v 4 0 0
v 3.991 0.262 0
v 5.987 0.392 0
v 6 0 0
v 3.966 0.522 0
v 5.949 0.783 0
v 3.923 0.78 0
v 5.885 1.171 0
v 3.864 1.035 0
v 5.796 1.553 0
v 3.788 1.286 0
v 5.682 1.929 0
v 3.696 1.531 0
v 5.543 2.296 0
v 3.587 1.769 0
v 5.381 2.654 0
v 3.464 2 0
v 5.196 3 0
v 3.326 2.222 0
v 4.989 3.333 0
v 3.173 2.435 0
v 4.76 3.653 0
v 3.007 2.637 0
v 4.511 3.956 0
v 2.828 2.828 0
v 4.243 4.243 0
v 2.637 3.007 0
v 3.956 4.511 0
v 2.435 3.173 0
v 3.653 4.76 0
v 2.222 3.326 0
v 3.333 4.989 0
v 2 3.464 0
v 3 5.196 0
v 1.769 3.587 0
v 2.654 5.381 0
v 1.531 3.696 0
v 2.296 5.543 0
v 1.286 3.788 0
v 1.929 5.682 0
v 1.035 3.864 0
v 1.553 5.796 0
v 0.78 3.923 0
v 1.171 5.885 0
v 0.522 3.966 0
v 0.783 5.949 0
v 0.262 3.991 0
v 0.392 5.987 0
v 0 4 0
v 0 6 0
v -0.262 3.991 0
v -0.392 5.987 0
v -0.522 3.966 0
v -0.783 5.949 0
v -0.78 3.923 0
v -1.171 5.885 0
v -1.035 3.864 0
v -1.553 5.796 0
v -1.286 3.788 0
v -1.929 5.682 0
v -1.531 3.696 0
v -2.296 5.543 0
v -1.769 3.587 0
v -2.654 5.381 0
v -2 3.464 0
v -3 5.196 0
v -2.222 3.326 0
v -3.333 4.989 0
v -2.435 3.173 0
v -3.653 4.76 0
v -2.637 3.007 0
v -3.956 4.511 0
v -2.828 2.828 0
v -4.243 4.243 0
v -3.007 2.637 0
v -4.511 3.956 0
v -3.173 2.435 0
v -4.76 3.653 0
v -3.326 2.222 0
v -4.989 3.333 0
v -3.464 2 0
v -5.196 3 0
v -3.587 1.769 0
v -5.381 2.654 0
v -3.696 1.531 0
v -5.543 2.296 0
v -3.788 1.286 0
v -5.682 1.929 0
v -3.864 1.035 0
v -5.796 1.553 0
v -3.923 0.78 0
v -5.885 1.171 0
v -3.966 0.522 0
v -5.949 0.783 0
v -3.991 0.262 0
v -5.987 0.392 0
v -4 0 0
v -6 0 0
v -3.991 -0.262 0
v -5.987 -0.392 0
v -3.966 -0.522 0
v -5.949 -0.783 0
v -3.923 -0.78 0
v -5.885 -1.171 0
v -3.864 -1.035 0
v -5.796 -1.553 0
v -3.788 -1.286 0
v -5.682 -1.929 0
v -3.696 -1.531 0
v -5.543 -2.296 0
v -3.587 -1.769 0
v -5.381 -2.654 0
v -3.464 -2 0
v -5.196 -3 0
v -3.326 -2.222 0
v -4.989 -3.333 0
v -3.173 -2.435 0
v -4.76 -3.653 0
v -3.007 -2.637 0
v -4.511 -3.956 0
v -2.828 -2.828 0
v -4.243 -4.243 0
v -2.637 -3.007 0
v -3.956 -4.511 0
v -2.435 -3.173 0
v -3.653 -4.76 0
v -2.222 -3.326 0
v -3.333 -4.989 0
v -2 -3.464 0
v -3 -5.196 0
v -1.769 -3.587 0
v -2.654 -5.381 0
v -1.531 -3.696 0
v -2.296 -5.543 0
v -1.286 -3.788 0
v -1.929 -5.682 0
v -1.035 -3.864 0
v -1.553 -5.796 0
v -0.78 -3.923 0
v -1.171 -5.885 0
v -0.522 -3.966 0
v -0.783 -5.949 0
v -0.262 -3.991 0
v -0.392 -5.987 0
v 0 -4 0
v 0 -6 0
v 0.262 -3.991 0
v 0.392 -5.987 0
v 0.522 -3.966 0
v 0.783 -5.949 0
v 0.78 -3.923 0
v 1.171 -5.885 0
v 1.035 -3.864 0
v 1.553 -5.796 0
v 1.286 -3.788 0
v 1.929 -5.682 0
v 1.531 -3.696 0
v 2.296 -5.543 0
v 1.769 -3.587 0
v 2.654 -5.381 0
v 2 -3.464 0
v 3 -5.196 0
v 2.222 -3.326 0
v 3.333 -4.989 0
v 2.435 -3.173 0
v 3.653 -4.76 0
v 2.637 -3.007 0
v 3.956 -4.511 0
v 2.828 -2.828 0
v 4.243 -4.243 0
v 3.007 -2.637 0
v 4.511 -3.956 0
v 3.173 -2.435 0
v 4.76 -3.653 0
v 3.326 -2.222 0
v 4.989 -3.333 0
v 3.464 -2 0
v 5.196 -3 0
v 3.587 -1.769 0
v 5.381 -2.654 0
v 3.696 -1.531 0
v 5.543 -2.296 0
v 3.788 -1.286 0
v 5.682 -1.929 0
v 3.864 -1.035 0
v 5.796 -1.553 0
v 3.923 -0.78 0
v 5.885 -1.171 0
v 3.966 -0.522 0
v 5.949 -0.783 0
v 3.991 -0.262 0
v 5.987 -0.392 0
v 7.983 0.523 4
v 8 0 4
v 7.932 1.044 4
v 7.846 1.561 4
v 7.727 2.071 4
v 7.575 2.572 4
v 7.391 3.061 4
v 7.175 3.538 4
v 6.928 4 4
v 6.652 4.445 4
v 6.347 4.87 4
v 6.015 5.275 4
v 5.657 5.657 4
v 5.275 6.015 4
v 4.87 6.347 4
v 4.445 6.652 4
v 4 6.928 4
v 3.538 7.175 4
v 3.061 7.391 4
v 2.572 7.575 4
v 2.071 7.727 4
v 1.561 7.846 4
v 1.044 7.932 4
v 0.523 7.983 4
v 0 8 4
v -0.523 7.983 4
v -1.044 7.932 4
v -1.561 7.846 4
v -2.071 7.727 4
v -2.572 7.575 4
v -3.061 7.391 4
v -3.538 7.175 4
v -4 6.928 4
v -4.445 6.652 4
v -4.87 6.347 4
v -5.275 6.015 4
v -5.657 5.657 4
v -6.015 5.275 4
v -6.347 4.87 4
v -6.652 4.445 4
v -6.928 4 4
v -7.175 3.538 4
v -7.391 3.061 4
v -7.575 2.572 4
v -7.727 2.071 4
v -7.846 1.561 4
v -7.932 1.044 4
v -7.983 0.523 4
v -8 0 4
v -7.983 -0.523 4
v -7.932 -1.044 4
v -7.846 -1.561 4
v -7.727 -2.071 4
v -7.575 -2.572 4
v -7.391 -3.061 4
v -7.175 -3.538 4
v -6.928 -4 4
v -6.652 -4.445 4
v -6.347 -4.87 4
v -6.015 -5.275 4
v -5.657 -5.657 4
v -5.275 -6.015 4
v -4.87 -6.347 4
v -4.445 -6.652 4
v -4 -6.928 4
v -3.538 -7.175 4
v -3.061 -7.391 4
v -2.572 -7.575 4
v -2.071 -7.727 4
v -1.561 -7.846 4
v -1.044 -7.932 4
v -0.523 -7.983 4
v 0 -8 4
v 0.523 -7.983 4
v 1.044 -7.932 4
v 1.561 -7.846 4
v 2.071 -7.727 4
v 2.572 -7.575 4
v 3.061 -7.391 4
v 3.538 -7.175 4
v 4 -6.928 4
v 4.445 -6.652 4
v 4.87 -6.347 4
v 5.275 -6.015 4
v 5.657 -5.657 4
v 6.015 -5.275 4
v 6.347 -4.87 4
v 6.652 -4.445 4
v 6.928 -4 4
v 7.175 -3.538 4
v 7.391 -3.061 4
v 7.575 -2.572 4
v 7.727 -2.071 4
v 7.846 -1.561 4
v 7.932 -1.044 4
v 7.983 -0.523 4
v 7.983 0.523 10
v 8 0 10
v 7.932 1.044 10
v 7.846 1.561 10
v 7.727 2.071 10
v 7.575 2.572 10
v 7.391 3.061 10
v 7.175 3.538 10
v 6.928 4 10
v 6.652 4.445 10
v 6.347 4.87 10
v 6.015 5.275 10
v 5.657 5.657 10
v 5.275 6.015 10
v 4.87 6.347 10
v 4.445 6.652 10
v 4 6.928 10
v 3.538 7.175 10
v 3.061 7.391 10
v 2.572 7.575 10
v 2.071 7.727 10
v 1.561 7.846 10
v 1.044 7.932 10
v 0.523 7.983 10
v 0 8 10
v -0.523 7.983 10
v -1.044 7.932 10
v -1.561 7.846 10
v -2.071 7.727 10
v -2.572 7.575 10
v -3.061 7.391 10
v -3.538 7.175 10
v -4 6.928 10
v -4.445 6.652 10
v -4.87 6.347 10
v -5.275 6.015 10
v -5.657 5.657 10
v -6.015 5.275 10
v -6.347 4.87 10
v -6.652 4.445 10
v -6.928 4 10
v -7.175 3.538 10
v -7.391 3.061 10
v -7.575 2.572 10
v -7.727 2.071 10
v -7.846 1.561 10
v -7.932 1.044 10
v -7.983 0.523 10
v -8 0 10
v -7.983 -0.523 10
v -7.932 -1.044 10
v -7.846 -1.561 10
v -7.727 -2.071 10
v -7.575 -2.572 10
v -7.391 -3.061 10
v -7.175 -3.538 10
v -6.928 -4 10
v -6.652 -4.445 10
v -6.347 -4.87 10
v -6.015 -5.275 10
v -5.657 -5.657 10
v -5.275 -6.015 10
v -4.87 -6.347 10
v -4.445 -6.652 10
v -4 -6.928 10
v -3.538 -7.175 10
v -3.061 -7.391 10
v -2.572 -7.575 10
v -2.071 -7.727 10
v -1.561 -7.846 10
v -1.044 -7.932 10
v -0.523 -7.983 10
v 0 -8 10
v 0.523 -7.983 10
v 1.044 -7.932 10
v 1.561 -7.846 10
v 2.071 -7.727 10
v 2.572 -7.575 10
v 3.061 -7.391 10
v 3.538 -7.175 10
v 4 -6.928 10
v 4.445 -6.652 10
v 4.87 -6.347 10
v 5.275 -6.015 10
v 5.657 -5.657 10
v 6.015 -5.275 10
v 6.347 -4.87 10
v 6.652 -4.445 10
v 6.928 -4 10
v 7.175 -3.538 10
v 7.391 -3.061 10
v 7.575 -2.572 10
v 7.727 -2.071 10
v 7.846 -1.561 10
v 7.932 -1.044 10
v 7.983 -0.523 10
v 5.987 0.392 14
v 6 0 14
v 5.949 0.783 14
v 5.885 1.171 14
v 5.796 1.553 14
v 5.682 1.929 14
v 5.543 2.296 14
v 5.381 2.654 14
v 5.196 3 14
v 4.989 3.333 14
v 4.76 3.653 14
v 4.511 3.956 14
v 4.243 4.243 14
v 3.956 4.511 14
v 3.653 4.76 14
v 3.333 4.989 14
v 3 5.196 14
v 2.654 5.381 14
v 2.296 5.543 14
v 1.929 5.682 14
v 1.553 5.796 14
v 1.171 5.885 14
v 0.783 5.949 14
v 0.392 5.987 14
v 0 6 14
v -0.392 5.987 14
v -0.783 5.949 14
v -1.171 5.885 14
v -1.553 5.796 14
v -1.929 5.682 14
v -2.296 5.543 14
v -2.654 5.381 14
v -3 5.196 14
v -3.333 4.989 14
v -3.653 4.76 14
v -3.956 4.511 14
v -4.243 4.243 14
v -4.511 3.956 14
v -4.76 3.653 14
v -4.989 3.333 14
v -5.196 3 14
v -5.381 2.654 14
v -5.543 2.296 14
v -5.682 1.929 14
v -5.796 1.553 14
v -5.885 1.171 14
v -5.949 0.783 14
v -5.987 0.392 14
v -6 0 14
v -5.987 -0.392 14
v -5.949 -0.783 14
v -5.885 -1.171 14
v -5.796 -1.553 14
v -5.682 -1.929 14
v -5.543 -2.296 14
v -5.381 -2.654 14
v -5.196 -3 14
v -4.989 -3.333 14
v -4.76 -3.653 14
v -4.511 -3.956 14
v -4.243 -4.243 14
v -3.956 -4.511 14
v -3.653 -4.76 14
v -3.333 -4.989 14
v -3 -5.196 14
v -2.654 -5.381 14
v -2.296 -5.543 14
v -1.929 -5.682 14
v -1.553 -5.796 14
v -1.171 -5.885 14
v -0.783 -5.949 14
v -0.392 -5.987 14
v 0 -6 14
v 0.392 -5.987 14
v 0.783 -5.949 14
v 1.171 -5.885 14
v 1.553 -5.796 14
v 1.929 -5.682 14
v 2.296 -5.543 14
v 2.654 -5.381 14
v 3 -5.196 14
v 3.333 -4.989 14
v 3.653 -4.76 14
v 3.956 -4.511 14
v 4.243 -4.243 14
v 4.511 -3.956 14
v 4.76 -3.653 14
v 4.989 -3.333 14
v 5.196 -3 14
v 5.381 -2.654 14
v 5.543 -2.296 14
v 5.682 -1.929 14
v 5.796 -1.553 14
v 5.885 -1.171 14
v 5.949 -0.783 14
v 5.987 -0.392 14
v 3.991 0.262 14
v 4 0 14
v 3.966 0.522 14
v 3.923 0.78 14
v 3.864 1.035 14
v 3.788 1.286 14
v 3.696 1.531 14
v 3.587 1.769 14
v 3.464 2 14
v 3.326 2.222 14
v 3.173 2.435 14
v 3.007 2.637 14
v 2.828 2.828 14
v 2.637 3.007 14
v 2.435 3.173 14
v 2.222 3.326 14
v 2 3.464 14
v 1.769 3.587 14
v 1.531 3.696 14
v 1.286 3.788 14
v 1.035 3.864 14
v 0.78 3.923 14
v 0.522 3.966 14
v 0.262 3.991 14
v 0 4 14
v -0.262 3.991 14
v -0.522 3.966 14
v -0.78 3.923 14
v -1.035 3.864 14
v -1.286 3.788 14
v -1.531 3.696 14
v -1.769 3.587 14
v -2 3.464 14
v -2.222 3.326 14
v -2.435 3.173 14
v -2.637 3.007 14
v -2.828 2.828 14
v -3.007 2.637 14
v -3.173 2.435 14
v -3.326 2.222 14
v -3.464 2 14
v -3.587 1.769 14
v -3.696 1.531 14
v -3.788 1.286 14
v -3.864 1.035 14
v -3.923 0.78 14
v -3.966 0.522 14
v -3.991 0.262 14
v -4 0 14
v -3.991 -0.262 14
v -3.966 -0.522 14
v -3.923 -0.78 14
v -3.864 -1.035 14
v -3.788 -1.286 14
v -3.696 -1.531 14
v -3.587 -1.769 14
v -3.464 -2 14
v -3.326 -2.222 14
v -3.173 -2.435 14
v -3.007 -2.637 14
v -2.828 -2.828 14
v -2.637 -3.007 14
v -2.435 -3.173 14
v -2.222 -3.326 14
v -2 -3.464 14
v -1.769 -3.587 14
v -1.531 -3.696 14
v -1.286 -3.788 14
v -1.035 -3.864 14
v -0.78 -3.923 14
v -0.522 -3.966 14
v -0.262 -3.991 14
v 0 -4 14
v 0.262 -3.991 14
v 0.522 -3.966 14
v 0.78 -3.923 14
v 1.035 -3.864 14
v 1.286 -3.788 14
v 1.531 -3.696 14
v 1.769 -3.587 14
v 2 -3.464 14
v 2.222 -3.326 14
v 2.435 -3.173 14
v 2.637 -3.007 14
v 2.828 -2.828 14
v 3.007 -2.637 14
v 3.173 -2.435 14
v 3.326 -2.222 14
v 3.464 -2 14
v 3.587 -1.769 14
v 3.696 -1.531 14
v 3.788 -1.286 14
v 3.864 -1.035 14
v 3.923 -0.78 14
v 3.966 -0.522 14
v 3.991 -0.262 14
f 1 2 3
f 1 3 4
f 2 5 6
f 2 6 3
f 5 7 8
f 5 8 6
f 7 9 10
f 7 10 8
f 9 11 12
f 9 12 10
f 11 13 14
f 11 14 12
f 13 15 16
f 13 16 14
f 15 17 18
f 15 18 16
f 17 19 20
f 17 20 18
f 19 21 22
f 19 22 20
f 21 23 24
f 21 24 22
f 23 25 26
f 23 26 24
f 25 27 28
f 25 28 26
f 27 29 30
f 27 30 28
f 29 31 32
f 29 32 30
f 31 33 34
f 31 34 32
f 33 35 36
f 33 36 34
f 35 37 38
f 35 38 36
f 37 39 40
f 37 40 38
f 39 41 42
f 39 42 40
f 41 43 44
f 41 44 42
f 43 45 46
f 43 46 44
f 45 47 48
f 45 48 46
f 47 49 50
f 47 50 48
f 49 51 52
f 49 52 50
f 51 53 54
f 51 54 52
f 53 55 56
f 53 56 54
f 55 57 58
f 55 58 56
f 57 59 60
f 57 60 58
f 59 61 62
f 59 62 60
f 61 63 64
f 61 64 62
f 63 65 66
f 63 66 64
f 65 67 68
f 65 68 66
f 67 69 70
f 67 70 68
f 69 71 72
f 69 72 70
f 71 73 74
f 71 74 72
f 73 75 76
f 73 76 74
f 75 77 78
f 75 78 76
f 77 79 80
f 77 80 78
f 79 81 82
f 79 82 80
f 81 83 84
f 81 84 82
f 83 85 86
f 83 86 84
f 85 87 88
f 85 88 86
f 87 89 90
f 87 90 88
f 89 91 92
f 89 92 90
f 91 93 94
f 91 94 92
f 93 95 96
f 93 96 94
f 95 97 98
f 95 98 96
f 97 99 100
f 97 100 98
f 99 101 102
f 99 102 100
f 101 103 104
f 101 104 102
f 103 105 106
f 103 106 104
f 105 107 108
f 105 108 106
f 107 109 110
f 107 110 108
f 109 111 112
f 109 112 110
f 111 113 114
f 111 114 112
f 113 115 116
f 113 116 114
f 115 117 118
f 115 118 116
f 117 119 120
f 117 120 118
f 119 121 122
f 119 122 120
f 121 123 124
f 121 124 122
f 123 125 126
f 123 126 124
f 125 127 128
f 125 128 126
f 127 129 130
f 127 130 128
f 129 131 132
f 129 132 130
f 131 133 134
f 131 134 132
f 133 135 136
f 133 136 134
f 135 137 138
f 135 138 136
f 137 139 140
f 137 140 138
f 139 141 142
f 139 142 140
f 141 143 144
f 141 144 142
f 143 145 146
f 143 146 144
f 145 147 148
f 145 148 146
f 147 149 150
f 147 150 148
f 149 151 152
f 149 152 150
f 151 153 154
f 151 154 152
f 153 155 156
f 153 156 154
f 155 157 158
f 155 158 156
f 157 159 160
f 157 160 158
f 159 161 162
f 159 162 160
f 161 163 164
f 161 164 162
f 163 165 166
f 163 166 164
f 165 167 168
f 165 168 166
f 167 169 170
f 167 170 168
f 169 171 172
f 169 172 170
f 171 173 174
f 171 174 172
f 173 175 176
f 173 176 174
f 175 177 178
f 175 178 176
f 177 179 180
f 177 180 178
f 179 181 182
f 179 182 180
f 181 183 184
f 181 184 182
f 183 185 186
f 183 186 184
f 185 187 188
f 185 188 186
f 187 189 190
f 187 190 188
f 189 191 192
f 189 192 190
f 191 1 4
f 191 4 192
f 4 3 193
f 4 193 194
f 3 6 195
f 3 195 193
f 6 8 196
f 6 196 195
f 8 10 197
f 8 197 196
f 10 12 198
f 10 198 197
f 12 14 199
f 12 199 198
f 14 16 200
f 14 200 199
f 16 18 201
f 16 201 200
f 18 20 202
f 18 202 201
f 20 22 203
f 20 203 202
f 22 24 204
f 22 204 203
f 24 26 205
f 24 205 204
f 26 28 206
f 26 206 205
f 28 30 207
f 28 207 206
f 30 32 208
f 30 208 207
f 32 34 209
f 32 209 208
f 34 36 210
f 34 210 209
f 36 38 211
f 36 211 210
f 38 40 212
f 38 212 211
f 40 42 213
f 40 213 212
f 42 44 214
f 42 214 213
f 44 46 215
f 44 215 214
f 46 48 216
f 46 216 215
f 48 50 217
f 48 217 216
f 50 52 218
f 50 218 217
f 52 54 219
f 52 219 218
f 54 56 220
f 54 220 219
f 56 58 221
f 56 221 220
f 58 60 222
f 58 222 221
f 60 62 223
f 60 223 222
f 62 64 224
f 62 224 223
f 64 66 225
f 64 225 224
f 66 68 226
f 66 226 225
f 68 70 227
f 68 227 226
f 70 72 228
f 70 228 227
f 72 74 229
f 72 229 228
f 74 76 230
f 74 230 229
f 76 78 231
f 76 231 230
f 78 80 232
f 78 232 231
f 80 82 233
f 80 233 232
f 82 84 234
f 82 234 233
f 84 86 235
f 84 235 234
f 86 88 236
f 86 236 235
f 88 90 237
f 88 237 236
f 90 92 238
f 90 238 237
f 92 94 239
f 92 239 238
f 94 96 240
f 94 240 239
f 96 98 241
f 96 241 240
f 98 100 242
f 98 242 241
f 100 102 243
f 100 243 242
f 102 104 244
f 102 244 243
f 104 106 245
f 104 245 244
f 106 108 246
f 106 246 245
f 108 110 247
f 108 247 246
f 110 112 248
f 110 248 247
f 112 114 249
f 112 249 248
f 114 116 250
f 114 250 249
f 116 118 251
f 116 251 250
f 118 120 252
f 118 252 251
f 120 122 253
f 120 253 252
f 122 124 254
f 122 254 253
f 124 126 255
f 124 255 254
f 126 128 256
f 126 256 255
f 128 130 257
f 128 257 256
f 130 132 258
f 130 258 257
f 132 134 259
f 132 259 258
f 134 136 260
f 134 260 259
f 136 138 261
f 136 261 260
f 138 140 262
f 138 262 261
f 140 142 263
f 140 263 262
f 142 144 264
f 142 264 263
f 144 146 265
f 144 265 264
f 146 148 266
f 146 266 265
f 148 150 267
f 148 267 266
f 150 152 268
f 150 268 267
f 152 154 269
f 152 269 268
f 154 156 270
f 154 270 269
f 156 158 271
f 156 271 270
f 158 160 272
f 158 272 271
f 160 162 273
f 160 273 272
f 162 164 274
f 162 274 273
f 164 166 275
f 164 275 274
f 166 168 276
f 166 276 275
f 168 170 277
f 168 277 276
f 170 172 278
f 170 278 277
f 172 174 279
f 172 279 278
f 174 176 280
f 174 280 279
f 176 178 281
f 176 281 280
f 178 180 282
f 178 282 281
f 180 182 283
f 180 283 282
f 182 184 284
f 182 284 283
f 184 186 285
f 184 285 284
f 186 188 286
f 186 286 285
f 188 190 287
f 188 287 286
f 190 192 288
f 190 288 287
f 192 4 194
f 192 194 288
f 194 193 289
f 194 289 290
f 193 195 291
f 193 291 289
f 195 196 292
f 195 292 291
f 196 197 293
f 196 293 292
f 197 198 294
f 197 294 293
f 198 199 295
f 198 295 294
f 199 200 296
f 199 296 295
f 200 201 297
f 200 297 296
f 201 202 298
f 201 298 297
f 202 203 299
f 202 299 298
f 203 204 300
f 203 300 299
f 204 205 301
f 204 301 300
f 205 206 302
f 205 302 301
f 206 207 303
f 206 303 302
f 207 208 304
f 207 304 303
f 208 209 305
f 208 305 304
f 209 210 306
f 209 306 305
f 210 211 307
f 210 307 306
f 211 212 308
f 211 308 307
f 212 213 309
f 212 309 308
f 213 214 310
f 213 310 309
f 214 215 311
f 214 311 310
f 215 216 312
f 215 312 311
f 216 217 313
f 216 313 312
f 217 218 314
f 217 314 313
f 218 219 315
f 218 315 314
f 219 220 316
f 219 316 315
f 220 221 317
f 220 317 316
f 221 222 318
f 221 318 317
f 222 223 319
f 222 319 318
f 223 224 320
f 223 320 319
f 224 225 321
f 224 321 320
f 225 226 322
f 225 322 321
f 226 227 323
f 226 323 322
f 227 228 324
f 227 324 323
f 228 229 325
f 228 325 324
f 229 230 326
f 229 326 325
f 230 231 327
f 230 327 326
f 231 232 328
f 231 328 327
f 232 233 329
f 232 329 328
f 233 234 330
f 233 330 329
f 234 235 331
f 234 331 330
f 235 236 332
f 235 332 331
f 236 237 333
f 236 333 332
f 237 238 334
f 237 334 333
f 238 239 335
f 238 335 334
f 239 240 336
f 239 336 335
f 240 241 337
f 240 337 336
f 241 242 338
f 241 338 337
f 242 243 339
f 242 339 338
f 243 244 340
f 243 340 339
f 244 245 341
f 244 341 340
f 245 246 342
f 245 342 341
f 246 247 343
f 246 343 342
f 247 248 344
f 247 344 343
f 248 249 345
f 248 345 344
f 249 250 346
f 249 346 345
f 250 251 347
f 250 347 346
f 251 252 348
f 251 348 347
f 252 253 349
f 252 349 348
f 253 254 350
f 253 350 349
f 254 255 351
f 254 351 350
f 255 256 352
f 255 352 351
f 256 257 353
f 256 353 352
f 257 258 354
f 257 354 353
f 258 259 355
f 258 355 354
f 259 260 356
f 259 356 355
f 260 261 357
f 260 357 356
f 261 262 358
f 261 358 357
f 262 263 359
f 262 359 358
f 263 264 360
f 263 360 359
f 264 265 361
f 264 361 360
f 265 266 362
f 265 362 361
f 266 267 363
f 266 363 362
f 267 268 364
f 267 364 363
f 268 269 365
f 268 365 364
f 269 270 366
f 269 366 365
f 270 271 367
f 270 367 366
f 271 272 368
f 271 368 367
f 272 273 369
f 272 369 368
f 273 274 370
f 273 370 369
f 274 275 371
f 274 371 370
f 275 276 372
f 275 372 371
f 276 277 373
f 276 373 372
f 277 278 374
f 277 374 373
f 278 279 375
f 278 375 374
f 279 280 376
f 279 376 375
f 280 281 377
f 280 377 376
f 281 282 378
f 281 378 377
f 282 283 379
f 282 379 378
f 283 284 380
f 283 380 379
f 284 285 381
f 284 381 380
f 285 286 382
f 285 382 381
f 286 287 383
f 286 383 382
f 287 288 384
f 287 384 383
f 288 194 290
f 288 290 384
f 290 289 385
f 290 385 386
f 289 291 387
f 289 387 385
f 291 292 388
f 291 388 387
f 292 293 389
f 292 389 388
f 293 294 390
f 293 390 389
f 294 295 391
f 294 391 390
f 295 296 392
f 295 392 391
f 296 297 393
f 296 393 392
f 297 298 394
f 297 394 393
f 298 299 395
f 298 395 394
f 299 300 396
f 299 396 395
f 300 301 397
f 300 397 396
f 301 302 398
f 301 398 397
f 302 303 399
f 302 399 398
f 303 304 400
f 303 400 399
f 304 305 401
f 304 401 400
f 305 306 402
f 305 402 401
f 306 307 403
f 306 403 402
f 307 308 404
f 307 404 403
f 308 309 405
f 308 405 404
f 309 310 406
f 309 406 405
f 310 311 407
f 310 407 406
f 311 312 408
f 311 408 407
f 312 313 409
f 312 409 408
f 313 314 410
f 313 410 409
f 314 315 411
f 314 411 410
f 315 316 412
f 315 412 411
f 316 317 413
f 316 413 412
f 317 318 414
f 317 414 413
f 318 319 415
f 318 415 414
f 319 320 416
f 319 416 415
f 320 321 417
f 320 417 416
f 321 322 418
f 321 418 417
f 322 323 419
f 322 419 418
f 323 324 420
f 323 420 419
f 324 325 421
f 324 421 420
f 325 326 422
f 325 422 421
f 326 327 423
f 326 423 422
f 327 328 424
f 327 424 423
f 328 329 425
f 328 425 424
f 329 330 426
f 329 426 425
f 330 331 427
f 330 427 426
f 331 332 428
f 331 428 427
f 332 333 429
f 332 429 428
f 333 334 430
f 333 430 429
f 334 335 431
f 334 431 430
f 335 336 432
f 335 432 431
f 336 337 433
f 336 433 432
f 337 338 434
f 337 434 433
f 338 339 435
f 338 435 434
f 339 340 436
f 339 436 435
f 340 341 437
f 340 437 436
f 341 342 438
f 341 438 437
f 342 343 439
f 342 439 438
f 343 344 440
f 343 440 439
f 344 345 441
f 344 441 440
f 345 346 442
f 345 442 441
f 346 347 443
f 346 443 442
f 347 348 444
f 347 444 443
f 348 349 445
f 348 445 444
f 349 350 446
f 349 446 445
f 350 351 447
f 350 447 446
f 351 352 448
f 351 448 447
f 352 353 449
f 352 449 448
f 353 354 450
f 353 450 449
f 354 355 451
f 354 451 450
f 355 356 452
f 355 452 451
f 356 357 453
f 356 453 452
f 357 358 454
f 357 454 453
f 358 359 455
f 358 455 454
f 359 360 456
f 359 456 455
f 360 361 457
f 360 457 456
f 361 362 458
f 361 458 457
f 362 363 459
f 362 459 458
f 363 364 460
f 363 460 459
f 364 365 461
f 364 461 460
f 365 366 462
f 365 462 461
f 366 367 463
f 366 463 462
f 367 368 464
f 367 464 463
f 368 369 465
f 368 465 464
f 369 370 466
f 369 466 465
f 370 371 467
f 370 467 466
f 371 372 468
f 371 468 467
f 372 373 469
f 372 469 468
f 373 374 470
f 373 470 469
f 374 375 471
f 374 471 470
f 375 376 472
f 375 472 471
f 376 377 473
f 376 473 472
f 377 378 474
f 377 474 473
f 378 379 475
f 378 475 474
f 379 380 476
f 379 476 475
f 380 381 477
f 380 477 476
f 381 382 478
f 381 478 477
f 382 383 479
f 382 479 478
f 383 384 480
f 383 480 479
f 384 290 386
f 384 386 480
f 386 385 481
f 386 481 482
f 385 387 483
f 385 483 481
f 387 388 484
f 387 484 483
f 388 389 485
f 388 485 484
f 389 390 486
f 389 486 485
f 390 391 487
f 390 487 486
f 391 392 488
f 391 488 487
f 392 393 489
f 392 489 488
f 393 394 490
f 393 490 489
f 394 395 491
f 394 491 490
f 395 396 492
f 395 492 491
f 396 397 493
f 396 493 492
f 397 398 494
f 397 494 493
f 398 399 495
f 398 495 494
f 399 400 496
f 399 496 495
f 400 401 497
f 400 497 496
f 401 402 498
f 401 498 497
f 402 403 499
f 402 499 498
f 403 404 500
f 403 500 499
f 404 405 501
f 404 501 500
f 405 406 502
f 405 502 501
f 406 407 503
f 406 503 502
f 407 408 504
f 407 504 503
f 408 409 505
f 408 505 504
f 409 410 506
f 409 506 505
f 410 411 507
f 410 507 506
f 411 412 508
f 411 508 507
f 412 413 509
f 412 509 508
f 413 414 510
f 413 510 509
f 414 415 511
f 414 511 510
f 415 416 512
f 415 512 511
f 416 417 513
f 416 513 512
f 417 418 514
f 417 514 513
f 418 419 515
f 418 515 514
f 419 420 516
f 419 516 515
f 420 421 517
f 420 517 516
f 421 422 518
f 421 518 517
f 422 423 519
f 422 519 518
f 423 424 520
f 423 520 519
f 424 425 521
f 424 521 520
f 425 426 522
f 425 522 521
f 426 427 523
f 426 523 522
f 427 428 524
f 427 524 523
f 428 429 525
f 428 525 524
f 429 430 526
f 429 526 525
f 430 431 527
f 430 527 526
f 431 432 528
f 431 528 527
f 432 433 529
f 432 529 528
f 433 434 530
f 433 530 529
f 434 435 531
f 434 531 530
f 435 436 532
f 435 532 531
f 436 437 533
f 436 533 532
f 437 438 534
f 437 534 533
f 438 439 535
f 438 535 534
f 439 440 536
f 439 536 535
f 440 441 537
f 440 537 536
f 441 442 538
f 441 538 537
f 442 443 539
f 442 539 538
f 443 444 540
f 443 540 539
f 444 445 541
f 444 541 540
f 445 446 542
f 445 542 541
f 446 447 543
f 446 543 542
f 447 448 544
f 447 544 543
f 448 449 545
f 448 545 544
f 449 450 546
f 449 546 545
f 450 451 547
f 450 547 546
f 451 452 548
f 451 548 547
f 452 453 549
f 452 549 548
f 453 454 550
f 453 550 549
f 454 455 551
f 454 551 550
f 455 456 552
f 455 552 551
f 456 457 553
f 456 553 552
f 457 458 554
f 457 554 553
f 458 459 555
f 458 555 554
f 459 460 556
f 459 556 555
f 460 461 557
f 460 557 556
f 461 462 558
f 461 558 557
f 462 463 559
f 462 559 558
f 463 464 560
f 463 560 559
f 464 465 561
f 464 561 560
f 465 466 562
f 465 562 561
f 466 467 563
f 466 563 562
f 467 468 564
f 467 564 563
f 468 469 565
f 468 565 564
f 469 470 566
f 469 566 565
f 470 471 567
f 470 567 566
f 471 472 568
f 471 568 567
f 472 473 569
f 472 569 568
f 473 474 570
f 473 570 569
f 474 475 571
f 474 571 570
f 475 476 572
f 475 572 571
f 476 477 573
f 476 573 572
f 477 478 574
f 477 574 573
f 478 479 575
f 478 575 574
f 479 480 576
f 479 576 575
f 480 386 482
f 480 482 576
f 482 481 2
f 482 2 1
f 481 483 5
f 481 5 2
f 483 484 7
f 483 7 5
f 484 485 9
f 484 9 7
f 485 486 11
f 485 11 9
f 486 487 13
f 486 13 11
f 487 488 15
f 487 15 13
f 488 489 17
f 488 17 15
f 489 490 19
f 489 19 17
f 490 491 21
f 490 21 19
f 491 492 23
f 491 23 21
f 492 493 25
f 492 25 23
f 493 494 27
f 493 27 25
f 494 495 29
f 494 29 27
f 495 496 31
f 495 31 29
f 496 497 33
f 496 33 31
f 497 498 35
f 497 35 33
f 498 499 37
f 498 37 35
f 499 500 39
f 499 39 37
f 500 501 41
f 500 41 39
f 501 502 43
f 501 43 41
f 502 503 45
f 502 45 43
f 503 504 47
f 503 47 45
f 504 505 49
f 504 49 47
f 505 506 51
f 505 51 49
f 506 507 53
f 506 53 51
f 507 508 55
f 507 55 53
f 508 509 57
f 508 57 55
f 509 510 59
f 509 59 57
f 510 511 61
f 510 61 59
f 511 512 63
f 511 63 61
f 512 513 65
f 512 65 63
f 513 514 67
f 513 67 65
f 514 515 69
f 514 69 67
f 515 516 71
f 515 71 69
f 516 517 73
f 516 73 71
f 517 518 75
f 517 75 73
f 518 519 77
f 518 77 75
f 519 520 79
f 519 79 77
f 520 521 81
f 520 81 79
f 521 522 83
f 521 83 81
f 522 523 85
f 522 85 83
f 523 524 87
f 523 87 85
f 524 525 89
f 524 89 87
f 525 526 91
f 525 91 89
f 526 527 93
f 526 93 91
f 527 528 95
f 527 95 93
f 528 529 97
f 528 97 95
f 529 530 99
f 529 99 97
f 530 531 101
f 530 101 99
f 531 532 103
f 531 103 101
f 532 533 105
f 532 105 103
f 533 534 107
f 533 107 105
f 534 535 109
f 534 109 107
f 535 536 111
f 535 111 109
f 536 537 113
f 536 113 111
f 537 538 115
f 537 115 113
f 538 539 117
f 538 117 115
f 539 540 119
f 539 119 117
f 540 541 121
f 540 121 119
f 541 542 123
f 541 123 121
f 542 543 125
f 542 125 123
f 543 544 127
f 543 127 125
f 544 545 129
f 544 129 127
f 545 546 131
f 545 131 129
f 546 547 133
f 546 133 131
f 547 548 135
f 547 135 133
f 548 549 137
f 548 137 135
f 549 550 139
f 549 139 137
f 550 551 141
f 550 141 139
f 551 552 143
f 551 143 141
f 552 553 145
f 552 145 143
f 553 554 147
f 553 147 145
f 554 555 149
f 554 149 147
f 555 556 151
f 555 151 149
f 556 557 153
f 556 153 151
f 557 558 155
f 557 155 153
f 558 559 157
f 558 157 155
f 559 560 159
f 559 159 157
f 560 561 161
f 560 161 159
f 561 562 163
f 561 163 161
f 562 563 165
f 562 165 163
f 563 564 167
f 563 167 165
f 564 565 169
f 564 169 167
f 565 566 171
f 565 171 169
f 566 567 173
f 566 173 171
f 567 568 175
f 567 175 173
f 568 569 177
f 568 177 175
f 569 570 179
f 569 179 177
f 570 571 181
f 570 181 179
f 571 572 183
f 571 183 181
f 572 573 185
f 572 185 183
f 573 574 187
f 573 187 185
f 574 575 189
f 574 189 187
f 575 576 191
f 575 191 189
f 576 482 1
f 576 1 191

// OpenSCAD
// Original MechIntel educational model. CC0-1.0. Units: mm.
// Not a standardized or load-rated component.
$fn=96;
// Section points: [radius, height], mm. Edit to change the profile.
section=[[4, 0], [6, 0], [8, 4], [8, 10], [6, 14], [4, 14]];
rotate_extrude($fn=96) polygon(points=section);
